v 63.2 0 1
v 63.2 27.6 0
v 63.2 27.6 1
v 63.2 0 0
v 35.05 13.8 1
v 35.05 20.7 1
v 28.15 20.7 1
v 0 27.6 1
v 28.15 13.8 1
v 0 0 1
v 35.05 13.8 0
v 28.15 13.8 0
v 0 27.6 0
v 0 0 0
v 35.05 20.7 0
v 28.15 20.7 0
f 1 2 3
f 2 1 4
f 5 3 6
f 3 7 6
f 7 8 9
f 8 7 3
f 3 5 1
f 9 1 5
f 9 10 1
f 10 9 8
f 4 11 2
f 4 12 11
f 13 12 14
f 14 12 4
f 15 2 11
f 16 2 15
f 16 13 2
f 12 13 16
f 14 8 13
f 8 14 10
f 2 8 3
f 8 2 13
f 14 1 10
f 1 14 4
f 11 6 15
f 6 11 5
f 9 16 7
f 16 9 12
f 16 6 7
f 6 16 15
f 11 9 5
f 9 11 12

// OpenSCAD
/*
 * PROMPT: H0 scale (1:87) single-car garage left side wall panel, 63.2 mm wide x 27.6 mm tall x 1 mm thick, with a centred through-hole window opening 6.9 mm wide x 6.9 mm tall at sill height 13.8 mm.
 */

$fn = 32;

panel_t = 1.0;

bld_d    = 63.2;
bld_h    = 27.6;
win_w    = 6.9;
win_h    = 6.9;
win_sill = 13.8;

module wall_left() {
    difference() {
        cube([bld_d, bld_h, panel_t]);
        // Window opening (through hole), centred horizontally
        translate([(bld_d - win_w) / 2, win_sill, -1])
            cube([win_w, win_h, panel_t + 2]);
    }
}

wall_left();
